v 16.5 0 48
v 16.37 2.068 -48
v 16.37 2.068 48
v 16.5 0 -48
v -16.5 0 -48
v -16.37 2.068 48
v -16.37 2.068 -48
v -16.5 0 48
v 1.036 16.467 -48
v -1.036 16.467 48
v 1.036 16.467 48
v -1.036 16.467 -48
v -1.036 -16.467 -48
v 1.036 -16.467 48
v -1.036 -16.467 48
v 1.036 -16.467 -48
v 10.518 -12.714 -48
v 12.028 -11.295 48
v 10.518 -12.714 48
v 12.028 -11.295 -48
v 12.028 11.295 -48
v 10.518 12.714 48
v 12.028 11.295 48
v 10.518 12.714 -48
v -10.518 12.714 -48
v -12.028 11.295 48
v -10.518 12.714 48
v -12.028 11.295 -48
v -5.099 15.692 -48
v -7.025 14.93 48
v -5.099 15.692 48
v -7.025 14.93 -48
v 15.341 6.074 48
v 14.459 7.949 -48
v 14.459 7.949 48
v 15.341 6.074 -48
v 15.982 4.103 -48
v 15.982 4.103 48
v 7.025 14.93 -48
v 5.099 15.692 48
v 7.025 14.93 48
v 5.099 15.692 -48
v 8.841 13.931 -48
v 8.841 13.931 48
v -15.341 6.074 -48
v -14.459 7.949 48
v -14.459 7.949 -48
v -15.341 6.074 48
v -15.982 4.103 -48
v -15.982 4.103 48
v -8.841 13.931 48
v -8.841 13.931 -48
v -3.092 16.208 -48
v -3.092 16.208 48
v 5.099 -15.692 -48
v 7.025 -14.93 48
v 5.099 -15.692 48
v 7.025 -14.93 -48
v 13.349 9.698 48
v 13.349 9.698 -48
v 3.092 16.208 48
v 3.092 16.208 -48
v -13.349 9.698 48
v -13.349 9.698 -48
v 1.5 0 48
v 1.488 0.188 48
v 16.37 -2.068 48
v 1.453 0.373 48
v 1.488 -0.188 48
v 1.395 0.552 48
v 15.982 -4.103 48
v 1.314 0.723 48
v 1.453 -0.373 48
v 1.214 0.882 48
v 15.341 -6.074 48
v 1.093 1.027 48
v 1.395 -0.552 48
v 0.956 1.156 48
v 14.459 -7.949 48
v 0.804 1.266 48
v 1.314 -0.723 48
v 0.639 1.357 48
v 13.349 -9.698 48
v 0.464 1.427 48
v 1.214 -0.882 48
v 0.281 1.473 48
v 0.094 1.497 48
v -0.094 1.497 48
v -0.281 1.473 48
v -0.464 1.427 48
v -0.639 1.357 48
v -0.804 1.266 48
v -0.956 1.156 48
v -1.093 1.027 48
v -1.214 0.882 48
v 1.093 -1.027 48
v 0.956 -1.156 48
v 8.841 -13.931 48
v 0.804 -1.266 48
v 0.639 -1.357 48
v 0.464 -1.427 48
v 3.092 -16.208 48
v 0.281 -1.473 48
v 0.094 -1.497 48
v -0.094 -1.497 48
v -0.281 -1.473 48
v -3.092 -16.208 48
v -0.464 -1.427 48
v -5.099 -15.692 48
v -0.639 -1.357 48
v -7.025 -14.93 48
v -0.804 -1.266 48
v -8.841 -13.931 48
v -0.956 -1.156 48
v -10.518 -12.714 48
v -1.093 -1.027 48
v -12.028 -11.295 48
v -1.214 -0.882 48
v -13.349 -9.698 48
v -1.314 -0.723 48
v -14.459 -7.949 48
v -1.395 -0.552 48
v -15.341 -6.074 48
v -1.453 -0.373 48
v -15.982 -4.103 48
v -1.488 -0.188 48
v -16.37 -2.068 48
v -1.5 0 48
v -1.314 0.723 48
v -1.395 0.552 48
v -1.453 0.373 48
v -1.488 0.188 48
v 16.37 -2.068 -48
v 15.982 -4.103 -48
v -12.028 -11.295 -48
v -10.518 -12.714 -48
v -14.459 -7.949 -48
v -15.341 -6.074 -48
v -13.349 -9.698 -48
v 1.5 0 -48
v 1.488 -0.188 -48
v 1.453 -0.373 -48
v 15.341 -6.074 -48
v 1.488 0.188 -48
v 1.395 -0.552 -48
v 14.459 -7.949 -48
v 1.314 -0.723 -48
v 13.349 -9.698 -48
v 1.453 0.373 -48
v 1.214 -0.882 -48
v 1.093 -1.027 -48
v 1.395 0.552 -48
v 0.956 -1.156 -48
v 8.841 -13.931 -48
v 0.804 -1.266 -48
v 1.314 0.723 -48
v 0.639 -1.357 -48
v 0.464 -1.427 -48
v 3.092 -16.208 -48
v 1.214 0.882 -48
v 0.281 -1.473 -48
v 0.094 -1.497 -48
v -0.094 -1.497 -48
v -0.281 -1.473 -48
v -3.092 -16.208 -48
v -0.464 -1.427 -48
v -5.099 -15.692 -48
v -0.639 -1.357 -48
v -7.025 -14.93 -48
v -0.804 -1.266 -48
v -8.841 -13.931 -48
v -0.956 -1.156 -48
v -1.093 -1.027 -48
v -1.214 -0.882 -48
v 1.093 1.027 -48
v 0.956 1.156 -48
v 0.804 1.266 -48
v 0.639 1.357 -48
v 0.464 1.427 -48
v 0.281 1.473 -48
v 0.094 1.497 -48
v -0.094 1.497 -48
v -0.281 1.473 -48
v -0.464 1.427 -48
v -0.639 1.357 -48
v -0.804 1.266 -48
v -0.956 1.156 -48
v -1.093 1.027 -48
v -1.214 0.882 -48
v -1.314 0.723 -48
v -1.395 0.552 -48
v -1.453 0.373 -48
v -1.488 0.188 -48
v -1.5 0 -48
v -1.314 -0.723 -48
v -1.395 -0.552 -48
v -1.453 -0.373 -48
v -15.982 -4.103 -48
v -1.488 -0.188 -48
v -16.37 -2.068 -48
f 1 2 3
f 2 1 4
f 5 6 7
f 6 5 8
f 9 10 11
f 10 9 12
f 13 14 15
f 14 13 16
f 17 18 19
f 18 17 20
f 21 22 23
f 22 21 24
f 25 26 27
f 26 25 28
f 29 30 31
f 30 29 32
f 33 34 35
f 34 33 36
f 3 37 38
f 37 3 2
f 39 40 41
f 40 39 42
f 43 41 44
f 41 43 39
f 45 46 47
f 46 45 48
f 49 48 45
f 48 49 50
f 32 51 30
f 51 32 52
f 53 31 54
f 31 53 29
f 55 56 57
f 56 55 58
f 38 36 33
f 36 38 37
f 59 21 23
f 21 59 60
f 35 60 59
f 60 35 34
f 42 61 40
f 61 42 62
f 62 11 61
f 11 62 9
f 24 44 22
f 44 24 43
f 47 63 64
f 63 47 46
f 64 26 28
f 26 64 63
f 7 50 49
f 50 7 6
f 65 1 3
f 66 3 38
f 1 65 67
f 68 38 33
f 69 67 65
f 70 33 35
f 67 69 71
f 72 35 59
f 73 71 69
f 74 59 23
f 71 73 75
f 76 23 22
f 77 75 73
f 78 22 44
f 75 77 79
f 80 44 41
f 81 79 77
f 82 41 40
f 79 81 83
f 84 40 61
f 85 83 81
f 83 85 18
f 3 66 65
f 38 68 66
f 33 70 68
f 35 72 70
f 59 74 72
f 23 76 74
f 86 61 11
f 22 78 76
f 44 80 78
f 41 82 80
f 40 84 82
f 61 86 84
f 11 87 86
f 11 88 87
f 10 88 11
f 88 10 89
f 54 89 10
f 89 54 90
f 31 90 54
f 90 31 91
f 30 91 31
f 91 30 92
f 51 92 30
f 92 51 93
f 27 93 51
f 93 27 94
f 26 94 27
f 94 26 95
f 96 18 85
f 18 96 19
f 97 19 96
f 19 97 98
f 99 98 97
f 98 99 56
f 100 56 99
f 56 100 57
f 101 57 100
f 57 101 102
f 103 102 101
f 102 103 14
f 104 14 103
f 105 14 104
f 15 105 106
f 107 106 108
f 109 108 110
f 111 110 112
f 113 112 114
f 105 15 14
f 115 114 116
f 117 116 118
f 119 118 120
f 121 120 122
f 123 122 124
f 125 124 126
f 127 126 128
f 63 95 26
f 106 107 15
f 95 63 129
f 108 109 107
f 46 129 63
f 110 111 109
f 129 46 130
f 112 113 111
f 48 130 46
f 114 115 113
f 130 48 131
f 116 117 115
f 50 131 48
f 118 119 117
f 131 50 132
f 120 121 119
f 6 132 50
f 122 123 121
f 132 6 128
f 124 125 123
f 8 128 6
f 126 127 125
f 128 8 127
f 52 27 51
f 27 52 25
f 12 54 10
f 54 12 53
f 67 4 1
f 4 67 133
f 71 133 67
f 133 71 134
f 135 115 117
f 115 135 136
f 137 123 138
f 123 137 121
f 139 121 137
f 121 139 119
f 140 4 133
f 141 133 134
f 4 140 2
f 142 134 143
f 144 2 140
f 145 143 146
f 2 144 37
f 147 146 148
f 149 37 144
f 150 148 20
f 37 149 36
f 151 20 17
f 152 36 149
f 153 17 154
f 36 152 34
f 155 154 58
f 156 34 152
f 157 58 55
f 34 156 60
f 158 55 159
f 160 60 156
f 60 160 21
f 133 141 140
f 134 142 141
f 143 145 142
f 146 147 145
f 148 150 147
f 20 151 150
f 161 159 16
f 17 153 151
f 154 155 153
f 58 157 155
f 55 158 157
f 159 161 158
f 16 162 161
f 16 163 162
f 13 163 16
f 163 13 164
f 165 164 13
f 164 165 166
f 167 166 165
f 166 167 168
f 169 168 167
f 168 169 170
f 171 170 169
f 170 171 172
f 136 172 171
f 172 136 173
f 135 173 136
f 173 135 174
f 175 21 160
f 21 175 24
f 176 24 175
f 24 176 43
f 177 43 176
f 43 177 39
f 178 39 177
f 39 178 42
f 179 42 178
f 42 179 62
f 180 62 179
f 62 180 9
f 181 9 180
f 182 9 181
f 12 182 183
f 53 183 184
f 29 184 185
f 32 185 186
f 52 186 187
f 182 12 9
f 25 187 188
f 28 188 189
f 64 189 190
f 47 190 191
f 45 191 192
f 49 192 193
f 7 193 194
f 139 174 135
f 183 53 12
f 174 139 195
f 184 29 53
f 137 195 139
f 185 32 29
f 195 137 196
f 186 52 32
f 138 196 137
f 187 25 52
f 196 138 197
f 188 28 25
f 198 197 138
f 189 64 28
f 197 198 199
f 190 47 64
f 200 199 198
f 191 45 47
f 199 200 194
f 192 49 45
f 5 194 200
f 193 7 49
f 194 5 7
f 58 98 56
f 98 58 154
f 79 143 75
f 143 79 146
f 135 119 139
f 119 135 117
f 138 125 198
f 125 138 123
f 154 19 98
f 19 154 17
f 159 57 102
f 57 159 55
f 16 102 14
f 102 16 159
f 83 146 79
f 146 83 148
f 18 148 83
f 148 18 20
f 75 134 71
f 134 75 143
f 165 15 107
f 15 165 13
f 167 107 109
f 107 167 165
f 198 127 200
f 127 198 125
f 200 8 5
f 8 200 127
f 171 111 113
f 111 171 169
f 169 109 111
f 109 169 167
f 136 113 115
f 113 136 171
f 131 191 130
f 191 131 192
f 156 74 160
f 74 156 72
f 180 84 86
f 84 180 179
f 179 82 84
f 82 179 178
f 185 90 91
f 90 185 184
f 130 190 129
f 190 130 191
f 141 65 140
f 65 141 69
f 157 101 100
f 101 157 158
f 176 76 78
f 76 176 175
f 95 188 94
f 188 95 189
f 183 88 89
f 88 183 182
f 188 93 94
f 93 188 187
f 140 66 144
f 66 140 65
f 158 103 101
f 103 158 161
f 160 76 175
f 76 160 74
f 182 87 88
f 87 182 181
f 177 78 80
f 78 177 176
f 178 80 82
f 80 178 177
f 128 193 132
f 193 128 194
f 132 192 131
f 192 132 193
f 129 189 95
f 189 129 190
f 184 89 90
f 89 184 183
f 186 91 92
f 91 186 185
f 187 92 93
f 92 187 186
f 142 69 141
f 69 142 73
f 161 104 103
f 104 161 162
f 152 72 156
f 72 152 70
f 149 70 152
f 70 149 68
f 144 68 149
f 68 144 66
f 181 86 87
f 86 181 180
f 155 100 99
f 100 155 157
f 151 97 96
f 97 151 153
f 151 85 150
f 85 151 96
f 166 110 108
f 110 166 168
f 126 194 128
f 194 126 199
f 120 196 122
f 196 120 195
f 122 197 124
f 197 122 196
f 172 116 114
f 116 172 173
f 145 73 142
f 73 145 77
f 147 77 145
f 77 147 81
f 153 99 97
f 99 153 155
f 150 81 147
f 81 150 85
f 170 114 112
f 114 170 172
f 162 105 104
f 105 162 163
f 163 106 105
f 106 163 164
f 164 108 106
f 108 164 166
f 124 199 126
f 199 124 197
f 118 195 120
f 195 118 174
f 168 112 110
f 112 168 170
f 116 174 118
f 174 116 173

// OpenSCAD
$fn = 50;


difference() {
	union() {
		translate(v = [0, 0, -48.0000000000]) {
			cylinder(h = 96, r = 16.5000000000);
		}
	}
	union() {
		translate(v = [0, 0, -100.0000000000]) {
			cylinder(h = 200, r = 1.5000000000);
		}
	}
}
